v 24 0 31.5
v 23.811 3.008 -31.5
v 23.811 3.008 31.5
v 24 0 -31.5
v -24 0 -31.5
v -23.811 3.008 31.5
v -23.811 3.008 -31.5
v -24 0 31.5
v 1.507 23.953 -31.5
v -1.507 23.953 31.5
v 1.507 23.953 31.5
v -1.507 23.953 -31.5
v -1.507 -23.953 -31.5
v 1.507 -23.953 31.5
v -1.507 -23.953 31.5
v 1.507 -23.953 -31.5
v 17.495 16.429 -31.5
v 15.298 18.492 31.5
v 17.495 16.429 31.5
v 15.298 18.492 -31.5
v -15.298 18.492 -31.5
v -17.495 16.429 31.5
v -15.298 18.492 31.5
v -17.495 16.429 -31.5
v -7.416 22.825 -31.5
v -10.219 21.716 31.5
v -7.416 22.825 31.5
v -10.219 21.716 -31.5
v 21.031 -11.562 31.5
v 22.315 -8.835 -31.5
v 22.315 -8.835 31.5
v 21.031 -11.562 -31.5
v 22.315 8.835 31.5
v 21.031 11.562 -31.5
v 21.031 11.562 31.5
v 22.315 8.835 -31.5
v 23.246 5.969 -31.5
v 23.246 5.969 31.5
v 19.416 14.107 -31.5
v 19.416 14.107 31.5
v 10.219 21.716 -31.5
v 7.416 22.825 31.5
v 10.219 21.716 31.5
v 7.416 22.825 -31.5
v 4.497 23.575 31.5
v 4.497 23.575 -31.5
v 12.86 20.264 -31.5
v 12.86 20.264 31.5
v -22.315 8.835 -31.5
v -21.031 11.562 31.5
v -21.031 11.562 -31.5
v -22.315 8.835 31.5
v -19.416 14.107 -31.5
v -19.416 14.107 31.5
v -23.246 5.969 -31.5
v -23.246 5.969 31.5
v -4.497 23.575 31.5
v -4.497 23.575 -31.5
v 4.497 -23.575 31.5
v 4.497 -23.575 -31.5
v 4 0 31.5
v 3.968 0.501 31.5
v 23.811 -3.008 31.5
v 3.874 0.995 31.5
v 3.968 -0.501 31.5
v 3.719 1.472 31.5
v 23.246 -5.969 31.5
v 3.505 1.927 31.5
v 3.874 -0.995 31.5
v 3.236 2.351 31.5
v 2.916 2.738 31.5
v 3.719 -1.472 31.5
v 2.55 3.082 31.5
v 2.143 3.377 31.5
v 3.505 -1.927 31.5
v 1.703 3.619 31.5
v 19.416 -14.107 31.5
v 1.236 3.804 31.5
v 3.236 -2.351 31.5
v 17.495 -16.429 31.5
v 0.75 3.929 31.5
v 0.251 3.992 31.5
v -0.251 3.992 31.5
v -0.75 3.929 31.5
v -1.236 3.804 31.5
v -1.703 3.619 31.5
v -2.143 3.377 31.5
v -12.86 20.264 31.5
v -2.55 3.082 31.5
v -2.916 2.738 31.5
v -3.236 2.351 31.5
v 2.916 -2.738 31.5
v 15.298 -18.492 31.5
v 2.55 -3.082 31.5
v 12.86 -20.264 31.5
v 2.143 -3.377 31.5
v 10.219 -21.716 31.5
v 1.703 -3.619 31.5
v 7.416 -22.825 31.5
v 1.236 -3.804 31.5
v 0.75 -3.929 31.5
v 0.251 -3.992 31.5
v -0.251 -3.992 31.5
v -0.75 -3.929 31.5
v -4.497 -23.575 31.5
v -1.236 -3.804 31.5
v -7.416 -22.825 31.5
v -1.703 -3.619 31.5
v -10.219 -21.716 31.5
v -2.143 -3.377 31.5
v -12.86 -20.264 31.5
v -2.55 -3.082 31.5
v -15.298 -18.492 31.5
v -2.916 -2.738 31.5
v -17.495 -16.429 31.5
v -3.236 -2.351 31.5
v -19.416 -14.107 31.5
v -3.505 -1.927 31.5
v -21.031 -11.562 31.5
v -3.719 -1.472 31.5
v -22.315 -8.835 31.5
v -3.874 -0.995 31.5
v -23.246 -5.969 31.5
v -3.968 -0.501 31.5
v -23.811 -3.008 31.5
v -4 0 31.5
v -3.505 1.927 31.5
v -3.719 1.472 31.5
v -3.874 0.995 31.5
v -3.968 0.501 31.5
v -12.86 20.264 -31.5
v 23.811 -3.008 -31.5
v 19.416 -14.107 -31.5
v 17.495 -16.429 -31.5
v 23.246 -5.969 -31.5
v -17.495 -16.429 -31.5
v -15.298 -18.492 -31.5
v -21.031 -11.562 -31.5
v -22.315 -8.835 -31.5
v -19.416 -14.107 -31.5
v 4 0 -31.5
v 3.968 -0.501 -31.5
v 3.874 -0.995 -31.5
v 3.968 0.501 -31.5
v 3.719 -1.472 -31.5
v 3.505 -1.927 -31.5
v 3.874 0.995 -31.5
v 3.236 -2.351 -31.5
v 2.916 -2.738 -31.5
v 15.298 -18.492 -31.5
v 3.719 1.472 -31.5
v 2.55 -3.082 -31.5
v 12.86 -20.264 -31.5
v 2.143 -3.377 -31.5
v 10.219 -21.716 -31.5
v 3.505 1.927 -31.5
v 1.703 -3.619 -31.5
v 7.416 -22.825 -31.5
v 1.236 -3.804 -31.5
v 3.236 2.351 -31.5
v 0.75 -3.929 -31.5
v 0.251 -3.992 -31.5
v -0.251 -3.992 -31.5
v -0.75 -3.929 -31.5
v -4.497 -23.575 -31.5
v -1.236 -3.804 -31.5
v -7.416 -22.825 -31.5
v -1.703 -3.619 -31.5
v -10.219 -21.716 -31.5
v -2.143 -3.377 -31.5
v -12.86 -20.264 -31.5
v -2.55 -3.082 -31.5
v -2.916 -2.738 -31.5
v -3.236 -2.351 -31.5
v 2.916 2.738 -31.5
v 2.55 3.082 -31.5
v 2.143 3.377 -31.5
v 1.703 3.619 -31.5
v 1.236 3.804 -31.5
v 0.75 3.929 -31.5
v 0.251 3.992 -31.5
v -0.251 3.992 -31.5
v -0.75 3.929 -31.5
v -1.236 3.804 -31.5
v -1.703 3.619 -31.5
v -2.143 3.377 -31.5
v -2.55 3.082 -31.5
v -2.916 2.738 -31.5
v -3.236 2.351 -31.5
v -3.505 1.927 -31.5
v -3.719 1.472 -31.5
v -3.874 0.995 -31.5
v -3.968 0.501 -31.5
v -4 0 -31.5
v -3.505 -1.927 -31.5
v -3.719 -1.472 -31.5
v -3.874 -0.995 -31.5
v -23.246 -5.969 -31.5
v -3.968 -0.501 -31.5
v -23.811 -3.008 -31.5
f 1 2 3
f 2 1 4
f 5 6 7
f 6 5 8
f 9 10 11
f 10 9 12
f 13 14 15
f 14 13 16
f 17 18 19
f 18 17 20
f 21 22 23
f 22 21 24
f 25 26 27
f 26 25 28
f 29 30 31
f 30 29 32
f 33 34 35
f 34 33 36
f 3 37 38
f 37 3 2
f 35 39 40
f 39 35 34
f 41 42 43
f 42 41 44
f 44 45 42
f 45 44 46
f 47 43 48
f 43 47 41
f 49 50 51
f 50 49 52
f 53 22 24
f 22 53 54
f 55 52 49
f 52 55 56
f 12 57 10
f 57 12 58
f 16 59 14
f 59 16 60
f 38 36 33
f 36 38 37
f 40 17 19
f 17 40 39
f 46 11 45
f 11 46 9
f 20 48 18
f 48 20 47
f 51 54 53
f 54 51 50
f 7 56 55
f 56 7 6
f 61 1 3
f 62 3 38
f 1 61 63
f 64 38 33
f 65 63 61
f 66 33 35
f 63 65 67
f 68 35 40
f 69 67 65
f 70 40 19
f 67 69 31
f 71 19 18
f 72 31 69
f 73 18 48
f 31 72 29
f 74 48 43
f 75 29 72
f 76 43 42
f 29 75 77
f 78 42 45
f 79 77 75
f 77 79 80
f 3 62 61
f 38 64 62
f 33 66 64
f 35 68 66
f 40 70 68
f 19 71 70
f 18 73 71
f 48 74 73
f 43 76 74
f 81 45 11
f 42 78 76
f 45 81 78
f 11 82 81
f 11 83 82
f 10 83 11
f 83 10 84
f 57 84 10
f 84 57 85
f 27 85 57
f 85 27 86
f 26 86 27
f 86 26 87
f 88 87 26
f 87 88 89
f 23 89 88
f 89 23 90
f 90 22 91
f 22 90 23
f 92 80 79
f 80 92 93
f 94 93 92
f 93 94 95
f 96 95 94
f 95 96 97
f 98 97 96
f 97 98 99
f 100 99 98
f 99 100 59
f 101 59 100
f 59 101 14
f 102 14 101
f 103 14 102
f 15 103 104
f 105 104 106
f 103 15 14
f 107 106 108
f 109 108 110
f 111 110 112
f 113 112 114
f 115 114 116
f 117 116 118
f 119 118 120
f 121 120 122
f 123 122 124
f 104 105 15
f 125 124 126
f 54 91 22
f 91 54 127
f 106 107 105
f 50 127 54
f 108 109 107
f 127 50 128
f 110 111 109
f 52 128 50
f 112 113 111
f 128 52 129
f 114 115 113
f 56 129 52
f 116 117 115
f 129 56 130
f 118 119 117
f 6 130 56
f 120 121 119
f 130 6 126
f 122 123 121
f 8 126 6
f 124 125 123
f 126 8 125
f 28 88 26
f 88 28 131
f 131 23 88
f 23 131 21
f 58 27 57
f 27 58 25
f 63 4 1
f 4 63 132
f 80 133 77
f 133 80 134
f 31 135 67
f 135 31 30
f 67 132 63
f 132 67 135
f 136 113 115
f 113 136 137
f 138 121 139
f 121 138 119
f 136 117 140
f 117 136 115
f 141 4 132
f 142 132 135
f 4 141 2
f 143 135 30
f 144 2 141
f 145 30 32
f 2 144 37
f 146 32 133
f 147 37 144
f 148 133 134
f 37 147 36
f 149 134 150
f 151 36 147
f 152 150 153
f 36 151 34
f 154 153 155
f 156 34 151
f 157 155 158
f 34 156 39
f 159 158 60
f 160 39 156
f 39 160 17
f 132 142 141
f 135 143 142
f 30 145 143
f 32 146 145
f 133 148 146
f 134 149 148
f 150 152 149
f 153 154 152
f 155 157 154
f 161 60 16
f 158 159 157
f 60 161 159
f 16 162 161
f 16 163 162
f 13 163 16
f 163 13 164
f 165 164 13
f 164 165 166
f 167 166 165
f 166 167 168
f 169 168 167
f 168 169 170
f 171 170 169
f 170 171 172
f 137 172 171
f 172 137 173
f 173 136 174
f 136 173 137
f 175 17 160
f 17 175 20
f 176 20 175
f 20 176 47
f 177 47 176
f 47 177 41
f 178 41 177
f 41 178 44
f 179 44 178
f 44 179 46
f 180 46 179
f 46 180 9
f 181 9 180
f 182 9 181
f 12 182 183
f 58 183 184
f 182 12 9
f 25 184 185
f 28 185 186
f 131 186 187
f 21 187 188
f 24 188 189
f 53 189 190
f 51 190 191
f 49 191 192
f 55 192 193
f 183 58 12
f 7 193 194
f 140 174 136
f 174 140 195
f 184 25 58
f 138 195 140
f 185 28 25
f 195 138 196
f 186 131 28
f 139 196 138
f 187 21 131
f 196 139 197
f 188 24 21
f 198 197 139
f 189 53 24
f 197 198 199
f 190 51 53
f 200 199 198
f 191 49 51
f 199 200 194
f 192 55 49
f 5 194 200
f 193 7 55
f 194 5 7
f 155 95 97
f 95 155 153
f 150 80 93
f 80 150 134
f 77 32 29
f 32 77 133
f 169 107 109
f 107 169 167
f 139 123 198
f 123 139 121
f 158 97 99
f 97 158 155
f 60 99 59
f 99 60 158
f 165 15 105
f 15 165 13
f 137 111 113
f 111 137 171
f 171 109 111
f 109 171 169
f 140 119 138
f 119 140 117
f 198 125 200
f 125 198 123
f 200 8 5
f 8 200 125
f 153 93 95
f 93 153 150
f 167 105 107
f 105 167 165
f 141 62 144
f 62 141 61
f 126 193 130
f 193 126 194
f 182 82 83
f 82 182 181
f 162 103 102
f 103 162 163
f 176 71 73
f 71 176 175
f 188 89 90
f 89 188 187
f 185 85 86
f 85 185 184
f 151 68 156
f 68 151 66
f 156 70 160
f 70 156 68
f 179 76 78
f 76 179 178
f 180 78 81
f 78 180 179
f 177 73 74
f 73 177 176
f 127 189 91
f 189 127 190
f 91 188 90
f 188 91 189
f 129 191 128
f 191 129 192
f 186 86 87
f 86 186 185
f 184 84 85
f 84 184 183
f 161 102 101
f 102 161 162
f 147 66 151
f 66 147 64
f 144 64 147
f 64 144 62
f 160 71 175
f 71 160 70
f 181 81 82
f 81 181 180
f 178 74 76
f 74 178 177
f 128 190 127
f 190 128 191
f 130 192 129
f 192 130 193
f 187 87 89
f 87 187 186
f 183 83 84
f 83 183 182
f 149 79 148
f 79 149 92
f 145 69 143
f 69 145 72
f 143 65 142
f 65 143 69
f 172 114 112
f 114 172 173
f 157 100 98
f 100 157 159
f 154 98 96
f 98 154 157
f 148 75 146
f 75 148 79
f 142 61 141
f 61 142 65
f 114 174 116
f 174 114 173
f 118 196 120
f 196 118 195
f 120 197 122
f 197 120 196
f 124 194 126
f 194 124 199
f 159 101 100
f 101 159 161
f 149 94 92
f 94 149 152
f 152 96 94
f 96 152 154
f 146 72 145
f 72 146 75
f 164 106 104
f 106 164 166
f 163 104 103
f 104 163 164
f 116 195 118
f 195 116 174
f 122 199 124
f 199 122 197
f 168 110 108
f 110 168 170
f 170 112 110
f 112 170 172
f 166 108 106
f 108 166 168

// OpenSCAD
$fn = 50;


difference() {
	union() {
		translate(v = [0, 0, -31.5000000000]) {
			cylinder(h = 63, r = 24.0000000000);
		}
	}
	union() {
		translate(v = [0, 0, -100.0000000000]) {
			cylinder(h = 200, r = 4.0000000000);
		}
	}
}
